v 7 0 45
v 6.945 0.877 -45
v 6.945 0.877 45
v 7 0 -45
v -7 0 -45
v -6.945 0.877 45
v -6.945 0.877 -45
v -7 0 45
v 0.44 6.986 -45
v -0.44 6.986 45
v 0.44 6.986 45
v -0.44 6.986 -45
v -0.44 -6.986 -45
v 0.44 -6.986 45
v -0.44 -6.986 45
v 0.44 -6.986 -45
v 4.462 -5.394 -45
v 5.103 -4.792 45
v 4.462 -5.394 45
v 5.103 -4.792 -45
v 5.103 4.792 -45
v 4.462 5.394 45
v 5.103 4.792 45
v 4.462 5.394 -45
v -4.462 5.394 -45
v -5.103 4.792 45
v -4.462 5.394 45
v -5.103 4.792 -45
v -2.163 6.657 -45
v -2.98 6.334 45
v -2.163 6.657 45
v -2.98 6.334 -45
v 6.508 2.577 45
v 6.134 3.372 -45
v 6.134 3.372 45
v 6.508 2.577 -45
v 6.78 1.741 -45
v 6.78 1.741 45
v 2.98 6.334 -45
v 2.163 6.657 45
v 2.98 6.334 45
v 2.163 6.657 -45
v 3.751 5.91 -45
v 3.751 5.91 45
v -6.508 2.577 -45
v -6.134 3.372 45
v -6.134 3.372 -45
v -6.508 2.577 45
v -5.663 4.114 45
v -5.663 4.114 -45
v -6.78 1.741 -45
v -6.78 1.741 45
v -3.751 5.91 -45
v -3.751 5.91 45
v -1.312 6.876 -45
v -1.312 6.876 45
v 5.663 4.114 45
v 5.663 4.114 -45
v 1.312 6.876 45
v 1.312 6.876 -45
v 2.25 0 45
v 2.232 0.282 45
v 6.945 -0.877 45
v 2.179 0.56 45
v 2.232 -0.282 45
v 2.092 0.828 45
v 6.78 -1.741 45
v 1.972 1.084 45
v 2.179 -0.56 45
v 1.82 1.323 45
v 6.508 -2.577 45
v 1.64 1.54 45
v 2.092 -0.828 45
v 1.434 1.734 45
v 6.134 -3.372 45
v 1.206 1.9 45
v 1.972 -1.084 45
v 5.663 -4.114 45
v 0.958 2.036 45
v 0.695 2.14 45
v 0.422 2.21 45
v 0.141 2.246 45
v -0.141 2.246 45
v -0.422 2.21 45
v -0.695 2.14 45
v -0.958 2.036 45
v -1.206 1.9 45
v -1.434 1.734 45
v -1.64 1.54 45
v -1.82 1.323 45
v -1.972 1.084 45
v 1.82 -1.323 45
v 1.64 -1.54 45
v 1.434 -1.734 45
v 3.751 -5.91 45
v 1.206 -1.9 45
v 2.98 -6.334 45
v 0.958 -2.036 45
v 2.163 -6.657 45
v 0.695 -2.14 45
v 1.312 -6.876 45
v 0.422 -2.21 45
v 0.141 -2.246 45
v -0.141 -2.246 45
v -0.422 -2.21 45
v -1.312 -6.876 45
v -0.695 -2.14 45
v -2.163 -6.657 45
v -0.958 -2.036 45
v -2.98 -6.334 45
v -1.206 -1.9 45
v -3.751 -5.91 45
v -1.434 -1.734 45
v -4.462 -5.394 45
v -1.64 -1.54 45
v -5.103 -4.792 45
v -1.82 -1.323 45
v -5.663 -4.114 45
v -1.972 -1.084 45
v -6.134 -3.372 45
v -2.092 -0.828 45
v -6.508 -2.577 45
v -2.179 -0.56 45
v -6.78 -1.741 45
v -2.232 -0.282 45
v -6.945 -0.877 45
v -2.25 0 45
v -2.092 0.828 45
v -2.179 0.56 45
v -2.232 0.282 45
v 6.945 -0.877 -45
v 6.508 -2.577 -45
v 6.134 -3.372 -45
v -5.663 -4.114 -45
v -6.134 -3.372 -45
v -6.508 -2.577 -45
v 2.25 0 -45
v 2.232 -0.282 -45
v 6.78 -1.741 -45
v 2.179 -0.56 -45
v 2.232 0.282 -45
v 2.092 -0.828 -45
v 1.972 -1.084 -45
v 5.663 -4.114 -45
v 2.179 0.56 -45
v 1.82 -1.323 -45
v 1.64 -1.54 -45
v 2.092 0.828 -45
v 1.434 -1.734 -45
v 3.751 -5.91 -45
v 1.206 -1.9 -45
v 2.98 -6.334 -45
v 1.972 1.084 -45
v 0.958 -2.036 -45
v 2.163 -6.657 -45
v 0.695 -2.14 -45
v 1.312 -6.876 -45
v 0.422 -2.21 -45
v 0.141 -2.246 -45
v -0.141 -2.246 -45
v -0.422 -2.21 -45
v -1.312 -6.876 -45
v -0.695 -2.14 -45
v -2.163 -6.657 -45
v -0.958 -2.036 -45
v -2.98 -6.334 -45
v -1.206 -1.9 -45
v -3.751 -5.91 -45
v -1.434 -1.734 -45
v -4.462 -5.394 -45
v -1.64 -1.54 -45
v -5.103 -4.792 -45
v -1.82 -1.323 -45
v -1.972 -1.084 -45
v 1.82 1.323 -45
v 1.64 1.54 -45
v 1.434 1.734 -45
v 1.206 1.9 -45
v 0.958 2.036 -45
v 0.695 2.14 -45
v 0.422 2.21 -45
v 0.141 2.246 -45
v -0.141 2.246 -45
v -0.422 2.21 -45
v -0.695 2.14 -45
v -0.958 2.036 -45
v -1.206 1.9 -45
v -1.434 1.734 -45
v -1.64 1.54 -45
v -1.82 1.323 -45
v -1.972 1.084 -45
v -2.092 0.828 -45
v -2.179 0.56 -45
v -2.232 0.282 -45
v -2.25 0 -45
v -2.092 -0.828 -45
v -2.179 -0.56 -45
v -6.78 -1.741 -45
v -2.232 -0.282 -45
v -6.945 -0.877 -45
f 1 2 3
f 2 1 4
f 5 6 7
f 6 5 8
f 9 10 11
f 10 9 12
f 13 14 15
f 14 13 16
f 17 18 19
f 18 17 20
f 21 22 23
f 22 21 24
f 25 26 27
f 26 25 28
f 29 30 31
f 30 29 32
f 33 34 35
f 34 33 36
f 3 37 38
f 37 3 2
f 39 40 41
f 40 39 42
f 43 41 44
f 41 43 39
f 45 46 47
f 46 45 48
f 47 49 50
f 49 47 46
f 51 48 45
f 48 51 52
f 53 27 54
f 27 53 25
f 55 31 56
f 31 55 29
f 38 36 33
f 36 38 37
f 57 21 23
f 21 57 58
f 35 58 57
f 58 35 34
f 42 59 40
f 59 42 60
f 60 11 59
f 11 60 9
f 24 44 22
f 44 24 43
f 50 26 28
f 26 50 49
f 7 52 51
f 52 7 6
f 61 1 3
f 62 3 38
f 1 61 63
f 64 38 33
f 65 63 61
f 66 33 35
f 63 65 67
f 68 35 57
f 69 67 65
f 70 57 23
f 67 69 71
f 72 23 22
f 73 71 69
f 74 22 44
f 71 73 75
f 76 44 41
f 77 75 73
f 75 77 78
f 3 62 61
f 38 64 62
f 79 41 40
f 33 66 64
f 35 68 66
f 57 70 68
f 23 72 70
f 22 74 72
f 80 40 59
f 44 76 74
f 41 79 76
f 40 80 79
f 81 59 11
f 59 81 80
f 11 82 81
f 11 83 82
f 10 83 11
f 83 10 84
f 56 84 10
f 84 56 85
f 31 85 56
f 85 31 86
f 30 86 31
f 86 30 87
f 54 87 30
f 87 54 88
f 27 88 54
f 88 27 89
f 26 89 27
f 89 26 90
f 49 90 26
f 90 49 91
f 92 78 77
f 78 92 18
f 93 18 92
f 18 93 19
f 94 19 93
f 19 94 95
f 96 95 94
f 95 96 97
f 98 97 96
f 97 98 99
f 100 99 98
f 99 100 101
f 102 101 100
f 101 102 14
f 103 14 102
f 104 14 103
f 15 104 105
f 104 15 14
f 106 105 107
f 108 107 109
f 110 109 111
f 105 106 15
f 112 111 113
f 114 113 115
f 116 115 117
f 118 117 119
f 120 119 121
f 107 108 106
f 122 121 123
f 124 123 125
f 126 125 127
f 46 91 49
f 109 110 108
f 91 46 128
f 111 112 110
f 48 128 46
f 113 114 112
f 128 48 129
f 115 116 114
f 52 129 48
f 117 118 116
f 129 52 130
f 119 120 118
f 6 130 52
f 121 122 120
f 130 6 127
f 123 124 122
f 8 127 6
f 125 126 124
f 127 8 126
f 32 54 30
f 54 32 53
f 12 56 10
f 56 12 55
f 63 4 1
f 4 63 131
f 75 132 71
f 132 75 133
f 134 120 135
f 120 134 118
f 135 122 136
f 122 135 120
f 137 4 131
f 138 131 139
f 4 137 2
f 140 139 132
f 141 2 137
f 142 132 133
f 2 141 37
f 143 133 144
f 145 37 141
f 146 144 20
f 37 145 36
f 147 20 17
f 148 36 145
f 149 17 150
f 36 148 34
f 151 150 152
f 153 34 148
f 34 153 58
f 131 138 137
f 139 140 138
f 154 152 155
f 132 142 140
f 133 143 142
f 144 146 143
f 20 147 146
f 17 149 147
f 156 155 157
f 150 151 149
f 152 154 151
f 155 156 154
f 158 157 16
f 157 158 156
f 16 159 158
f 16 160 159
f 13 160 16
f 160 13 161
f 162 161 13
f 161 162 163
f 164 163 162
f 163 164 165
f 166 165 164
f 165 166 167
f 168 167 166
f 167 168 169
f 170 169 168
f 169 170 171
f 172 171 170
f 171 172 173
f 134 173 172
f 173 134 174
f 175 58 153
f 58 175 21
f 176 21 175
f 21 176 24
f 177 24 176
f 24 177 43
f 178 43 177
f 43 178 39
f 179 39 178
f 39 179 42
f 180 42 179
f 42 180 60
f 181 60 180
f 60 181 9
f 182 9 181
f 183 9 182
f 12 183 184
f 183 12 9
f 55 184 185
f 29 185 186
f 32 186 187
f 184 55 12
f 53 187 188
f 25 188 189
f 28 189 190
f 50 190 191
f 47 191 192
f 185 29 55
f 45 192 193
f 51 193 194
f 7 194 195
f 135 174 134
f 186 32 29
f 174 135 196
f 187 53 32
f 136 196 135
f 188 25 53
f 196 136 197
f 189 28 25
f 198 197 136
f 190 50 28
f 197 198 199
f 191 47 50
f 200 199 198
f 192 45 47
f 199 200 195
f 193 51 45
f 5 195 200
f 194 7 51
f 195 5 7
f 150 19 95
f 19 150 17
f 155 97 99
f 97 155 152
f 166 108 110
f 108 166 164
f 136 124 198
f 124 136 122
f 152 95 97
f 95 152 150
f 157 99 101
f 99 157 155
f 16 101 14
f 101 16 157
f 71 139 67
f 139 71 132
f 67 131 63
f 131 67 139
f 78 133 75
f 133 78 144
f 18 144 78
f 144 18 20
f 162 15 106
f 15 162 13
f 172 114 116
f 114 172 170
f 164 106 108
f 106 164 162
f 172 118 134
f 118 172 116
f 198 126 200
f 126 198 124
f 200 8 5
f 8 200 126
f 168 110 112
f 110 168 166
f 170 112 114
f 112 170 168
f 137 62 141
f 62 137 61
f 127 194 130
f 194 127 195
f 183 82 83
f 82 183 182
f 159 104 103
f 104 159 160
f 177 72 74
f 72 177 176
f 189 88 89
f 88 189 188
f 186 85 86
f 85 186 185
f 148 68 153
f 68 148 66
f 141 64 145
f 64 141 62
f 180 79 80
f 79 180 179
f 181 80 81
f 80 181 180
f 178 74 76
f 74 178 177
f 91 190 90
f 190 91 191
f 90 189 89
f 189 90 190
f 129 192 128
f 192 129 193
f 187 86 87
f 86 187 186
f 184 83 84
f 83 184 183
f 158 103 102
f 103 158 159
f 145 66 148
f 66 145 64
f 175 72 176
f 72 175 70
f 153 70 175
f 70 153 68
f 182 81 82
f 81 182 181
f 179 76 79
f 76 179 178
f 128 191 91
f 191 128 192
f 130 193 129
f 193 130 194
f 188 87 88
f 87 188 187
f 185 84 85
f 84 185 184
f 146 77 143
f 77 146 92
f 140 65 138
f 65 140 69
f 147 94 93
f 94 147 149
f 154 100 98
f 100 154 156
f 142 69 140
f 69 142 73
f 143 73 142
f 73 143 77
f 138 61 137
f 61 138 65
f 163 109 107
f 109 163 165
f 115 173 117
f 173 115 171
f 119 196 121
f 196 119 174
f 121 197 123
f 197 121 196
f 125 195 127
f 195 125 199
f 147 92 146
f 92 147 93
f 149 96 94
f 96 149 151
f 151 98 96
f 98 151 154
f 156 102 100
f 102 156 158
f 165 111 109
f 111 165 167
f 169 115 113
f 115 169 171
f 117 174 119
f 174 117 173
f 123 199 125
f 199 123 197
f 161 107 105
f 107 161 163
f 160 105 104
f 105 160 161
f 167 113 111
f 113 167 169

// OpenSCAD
$fn = 50;


difference() {
	union() {
		translate(v = [0, 0, -45.0000000000]) {
			cylinder(h = 90, r = 7.0000000000);
		}
	}
	union() {
		translate(v = [0, 0, -100.0000000000]) {
			cylinder(h = 200, r = 2.2500000000);
		}
	}
}
